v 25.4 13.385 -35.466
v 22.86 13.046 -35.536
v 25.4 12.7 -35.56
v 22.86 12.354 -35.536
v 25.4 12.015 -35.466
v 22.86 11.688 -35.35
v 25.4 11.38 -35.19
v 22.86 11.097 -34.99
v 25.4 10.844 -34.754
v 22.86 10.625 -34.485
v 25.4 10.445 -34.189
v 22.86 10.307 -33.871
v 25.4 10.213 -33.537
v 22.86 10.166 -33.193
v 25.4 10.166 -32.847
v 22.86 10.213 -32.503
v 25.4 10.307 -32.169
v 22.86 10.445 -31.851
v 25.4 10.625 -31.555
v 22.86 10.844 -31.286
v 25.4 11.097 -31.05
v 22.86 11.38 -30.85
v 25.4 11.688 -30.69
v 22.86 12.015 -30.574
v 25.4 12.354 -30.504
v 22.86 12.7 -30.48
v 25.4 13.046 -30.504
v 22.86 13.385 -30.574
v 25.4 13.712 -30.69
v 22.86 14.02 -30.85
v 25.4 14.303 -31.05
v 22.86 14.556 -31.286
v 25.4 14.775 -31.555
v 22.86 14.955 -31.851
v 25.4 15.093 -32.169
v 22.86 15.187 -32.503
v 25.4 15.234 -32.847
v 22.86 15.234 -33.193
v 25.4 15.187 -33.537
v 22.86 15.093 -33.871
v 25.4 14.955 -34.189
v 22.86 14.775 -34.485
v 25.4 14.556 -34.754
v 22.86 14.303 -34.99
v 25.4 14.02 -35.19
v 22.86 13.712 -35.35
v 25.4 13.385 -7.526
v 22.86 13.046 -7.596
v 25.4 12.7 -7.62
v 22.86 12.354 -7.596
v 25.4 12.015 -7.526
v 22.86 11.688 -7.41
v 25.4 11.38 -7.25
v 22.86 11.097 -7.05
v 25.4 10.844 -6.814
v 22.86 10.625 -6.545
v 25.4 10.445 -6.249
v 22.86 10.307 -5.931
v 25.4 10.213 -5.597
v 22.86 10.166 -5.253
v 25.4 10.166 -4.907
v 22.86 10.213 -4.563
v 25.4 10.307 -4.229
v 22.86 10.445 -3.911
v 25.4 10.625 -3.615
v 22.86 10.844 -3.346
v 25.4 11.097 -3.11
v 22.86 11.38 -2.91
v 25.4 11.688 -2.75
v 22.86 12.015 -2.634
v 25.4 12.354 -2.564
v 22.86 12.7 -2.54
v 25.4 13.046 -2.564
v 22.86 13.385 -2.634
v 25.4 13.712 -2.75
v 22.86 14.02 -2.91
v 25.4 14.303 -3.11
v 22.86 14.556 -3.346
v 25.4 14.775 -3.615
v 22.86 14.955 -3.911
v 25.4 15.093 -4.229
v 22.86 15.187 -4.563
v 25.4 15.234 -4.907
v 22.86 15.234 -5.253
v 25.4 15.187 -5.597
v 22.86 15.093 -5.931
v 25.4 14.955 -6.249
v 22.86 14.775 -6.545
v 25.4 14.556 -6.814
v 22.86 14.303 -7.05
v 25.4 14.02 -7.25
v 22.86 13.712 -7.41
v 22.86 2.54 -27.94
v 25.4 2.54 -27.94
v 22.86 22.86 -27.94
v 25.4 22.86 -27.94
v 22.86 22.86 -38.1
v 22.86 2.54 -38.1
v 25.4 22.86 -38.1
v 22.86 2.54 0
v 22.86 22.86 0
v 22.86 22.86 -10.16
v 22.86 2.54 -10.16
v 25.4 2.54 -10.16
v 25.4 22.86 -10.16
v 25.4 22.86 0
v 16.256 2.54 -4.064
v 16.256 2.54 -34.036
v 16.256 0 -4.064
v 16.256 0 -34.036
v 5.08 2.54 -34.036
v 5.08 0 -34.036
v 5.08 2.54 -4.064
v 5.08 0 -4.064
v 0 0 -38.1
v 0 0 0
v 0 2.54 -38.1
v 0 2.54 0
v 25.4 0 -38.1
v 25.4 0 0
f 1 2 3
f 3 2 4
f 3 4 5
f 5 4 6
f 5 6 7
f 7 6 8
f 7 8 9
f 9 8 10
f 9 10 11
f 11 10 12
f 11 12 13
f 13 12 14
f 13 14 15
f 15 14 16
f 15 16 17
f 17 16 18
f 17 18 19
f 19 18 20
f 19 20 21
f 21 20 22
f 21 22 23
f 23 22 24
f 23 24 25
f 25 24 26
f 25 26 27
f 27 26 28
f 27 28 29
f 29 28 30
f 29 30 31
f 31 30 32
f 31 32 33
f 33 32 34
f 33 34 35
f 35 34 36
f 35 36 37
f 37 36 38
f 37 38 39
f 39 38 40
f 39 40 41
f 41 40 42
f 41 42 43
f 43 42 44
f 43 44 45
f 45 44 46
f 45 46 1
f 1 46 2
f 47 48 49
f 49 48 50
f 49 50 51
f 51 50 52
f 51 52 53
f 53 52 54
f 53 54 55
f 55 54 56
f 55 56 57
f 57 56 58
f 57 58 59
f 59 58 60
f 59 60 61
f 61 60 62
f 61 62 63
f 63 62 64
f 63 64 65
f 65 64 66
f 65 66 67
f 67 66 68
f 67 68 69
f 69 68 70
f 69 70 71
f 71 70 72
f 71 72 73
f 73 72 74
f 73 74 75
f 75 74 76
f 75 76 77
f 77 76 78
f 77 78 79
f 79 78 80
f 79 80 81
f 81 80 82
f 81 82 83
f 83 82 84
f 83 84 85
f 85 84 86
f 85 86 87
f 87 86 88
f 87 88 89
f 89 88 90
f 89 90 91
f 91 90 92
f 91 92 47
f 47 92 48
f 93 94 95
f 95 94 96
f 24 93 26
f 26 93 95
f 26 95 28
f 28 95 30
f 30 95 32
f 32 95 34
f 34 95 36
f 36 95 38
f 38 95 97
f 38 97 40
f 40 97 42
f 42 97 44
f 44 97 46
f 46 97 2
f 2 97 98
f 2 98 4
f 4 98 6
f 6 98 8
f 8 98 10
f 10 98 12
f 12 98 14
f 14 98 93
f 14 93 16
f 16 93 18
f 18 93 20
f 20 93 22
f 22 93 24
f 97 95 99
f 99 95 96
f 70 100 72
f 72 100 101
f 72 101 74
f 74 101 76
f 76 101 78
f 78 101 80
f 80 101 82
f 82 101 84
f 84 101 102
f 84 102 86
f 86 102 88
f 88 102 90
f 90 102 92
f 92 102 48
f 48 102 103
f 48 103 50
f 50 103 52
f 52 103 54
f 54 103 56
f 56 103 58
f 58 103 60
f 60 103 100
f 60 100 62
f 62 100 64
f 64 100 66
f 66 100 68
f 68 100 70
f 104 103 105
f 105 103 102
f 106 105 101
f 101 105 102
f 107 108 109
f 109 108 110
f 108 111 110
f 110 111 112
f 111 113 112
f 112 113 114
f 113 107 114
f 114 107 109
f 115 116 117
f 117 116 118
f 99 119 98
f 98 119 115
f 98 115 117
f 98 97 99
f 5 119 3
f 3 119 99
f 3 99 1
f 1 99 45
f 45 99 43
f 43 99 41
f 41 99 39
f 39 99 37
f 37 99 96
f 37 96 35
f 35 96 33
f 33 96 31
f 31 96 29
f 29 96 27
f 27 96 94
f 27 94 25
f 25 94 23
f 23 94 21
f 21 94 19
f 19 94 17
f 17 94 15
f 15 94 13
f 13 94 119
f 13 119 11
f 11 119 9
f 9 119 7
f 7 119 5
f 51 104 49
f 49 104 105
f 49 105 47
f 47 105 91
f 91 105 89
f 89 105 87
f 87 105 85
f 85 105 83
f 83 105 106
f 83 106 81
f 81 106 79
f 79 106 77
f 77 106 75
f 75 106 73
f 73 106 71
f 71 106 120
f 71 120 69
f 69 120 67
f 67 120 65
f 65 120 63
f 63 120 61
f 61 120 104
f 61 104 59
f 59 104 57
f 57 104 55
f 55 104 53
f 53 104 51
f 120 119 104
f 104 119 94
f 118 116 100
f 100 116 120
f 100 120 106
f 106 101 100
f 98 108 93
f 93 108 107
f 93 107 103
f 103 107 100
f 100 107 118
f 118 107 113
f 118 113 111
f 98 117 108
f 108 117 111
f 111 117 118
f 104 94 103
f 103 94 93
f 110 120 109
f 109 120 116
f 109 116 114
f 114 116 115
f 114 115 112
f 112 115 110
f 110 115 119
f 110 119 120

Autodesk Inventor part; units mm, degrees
ref_plane "YZ Plane" through (0, 0, 0) normal (1, 0, 0) x (0, 1, 0)
ref_plane "XZ Plane" through (0, 0, 0) normal (0, 1, 0) x (-1, 0, 0)
ref_plane "XY Plane" through (0, 0, 0) normal (0, 0, 1) x (1, 0, 0)
sketch "Sketch1" plane through (0, 0, 0) normal (0, 1, 0) x (-1, 0, 0)
  line L0 (0, 0) -> (-25.4, 0)
  line L1 (-25.4, 0) -> (-25.4, -38.1)
  line L2 (-25.4, -38.1) -> (0, -38.1)
  line L3 (0, -38.1) -> (0, 0)
  dimension "d0" = 25.4
  dimension "d1" = 38.1
extrude "Extrusion1" add sketch "Sketch1" along normal blind 2.54
sketch "Sketch3" plane through (0, 2.54, 0) normal (0, 1, 0) x (1, 0, 0)
  line L0 (0, 0) -> (5.08, 0)
  line L1 (5.08, 0) -> (5.08, 4.064)
  line L2 (5.08, 4.064) -> (0, 4.064)
  line L3 (0, 4.064) -> (0, 0)
  line L4 (25.4, 38.1) -> (0, 38.1) projected
  line L5 (0, 38.1) -> (5.08, 38.1)
  line L6 (5.08, 38.1) -> (5.08, 34.036)
  line L7 (5.08, 34.036) -> (0, 34.036)
  line L8 (0, 34.036) -> (0, 38.1)
  line L9 (5.08, 4.064) -> (16.256, 4.064)
  line L10 (16.256, 4.064) -> (16.256, 34.036)
  line L11 (16.256, 34.036) -> (5.08, 34.036)
  line L12 (5.08, 34.036) -> (5.08, 4.064)
  dimension "d7" = 5.08
  dimension "d8" = 4.064
  dimension "d9" = 5.08
  dimension "d10" = 4.064
  dimension "d11" = 11.176
extrude "Extrusion2" cut sketch "Sketch3" against normal blind 2.54 contours L12 L11 L10 L9
sketch "Sketch4" plane through (0, 2.54, 0) normal (0, 1, 0) x (1, 0, 0)
  line L0 (25.4, 0) -> (25.4, 38.1) projected
  line L1 (25.4, 0) -> (22.86, 0)
  line L2 (22.86, 0) -> (22.86, 10.16)
  line L3 (22.86, 10.16) -> (25.4, 10.16)
  line L4 (25.4, 10.16) -> (25.4, 0)
  line L5 (25.4, 38.1) -> (22.86, 38.1)
  line L6 (22.86, 38.1) -> (22.86, 27.94)
  line L7 (22.86, 27.94) -> (25.4, 27.94)
  line L8 (25.4, 27.94) -> (25.4, 38.1)
  point P0 (0, 0)
  dimension "d14" = 2.54
  dimension "d15" = 10.16
  dimension "d16" = 2.54
  dimension "d17" = 10.16
extrude "Extrusion3" add sketch "Sketch4" along normal blind 20.32
sketch "Sketch5" plane through (22.86, 2.54, -10.16) normal (-1, 0, 0) x (0, 0, 1)
  line L0 (10.16, 20.32) -> (0, 20.32) projected
  line L1 (5.08, 20.32) -> (5.08, 10.16)
  point P0 (10.16, -2.54)
  dimension "d20" = 10.16
hole "Hole1" at (22.86, 12.7, -5.08) direction (1, 0, 0) diameter 5.08 end through all
sketch "Sketch6" plane through (22.86, 2.54, -38.1) normal (-1, 0, 0) x (0, 0, 1)
  line L0 (10.16, 20.32) -> (0, 20.32) projected
  line L1 (5.08, 20.32) -> (5.08, 10.16)
  point P0 (38.1, -2.54)
  dimension "d28" = 10.16
hole "Hole2" at (22.86, 12.7, -33.02) direction (1, 0, 0) diameter 5.08 end through all
properties part number "Actobotics Power Switch Mount v2"
